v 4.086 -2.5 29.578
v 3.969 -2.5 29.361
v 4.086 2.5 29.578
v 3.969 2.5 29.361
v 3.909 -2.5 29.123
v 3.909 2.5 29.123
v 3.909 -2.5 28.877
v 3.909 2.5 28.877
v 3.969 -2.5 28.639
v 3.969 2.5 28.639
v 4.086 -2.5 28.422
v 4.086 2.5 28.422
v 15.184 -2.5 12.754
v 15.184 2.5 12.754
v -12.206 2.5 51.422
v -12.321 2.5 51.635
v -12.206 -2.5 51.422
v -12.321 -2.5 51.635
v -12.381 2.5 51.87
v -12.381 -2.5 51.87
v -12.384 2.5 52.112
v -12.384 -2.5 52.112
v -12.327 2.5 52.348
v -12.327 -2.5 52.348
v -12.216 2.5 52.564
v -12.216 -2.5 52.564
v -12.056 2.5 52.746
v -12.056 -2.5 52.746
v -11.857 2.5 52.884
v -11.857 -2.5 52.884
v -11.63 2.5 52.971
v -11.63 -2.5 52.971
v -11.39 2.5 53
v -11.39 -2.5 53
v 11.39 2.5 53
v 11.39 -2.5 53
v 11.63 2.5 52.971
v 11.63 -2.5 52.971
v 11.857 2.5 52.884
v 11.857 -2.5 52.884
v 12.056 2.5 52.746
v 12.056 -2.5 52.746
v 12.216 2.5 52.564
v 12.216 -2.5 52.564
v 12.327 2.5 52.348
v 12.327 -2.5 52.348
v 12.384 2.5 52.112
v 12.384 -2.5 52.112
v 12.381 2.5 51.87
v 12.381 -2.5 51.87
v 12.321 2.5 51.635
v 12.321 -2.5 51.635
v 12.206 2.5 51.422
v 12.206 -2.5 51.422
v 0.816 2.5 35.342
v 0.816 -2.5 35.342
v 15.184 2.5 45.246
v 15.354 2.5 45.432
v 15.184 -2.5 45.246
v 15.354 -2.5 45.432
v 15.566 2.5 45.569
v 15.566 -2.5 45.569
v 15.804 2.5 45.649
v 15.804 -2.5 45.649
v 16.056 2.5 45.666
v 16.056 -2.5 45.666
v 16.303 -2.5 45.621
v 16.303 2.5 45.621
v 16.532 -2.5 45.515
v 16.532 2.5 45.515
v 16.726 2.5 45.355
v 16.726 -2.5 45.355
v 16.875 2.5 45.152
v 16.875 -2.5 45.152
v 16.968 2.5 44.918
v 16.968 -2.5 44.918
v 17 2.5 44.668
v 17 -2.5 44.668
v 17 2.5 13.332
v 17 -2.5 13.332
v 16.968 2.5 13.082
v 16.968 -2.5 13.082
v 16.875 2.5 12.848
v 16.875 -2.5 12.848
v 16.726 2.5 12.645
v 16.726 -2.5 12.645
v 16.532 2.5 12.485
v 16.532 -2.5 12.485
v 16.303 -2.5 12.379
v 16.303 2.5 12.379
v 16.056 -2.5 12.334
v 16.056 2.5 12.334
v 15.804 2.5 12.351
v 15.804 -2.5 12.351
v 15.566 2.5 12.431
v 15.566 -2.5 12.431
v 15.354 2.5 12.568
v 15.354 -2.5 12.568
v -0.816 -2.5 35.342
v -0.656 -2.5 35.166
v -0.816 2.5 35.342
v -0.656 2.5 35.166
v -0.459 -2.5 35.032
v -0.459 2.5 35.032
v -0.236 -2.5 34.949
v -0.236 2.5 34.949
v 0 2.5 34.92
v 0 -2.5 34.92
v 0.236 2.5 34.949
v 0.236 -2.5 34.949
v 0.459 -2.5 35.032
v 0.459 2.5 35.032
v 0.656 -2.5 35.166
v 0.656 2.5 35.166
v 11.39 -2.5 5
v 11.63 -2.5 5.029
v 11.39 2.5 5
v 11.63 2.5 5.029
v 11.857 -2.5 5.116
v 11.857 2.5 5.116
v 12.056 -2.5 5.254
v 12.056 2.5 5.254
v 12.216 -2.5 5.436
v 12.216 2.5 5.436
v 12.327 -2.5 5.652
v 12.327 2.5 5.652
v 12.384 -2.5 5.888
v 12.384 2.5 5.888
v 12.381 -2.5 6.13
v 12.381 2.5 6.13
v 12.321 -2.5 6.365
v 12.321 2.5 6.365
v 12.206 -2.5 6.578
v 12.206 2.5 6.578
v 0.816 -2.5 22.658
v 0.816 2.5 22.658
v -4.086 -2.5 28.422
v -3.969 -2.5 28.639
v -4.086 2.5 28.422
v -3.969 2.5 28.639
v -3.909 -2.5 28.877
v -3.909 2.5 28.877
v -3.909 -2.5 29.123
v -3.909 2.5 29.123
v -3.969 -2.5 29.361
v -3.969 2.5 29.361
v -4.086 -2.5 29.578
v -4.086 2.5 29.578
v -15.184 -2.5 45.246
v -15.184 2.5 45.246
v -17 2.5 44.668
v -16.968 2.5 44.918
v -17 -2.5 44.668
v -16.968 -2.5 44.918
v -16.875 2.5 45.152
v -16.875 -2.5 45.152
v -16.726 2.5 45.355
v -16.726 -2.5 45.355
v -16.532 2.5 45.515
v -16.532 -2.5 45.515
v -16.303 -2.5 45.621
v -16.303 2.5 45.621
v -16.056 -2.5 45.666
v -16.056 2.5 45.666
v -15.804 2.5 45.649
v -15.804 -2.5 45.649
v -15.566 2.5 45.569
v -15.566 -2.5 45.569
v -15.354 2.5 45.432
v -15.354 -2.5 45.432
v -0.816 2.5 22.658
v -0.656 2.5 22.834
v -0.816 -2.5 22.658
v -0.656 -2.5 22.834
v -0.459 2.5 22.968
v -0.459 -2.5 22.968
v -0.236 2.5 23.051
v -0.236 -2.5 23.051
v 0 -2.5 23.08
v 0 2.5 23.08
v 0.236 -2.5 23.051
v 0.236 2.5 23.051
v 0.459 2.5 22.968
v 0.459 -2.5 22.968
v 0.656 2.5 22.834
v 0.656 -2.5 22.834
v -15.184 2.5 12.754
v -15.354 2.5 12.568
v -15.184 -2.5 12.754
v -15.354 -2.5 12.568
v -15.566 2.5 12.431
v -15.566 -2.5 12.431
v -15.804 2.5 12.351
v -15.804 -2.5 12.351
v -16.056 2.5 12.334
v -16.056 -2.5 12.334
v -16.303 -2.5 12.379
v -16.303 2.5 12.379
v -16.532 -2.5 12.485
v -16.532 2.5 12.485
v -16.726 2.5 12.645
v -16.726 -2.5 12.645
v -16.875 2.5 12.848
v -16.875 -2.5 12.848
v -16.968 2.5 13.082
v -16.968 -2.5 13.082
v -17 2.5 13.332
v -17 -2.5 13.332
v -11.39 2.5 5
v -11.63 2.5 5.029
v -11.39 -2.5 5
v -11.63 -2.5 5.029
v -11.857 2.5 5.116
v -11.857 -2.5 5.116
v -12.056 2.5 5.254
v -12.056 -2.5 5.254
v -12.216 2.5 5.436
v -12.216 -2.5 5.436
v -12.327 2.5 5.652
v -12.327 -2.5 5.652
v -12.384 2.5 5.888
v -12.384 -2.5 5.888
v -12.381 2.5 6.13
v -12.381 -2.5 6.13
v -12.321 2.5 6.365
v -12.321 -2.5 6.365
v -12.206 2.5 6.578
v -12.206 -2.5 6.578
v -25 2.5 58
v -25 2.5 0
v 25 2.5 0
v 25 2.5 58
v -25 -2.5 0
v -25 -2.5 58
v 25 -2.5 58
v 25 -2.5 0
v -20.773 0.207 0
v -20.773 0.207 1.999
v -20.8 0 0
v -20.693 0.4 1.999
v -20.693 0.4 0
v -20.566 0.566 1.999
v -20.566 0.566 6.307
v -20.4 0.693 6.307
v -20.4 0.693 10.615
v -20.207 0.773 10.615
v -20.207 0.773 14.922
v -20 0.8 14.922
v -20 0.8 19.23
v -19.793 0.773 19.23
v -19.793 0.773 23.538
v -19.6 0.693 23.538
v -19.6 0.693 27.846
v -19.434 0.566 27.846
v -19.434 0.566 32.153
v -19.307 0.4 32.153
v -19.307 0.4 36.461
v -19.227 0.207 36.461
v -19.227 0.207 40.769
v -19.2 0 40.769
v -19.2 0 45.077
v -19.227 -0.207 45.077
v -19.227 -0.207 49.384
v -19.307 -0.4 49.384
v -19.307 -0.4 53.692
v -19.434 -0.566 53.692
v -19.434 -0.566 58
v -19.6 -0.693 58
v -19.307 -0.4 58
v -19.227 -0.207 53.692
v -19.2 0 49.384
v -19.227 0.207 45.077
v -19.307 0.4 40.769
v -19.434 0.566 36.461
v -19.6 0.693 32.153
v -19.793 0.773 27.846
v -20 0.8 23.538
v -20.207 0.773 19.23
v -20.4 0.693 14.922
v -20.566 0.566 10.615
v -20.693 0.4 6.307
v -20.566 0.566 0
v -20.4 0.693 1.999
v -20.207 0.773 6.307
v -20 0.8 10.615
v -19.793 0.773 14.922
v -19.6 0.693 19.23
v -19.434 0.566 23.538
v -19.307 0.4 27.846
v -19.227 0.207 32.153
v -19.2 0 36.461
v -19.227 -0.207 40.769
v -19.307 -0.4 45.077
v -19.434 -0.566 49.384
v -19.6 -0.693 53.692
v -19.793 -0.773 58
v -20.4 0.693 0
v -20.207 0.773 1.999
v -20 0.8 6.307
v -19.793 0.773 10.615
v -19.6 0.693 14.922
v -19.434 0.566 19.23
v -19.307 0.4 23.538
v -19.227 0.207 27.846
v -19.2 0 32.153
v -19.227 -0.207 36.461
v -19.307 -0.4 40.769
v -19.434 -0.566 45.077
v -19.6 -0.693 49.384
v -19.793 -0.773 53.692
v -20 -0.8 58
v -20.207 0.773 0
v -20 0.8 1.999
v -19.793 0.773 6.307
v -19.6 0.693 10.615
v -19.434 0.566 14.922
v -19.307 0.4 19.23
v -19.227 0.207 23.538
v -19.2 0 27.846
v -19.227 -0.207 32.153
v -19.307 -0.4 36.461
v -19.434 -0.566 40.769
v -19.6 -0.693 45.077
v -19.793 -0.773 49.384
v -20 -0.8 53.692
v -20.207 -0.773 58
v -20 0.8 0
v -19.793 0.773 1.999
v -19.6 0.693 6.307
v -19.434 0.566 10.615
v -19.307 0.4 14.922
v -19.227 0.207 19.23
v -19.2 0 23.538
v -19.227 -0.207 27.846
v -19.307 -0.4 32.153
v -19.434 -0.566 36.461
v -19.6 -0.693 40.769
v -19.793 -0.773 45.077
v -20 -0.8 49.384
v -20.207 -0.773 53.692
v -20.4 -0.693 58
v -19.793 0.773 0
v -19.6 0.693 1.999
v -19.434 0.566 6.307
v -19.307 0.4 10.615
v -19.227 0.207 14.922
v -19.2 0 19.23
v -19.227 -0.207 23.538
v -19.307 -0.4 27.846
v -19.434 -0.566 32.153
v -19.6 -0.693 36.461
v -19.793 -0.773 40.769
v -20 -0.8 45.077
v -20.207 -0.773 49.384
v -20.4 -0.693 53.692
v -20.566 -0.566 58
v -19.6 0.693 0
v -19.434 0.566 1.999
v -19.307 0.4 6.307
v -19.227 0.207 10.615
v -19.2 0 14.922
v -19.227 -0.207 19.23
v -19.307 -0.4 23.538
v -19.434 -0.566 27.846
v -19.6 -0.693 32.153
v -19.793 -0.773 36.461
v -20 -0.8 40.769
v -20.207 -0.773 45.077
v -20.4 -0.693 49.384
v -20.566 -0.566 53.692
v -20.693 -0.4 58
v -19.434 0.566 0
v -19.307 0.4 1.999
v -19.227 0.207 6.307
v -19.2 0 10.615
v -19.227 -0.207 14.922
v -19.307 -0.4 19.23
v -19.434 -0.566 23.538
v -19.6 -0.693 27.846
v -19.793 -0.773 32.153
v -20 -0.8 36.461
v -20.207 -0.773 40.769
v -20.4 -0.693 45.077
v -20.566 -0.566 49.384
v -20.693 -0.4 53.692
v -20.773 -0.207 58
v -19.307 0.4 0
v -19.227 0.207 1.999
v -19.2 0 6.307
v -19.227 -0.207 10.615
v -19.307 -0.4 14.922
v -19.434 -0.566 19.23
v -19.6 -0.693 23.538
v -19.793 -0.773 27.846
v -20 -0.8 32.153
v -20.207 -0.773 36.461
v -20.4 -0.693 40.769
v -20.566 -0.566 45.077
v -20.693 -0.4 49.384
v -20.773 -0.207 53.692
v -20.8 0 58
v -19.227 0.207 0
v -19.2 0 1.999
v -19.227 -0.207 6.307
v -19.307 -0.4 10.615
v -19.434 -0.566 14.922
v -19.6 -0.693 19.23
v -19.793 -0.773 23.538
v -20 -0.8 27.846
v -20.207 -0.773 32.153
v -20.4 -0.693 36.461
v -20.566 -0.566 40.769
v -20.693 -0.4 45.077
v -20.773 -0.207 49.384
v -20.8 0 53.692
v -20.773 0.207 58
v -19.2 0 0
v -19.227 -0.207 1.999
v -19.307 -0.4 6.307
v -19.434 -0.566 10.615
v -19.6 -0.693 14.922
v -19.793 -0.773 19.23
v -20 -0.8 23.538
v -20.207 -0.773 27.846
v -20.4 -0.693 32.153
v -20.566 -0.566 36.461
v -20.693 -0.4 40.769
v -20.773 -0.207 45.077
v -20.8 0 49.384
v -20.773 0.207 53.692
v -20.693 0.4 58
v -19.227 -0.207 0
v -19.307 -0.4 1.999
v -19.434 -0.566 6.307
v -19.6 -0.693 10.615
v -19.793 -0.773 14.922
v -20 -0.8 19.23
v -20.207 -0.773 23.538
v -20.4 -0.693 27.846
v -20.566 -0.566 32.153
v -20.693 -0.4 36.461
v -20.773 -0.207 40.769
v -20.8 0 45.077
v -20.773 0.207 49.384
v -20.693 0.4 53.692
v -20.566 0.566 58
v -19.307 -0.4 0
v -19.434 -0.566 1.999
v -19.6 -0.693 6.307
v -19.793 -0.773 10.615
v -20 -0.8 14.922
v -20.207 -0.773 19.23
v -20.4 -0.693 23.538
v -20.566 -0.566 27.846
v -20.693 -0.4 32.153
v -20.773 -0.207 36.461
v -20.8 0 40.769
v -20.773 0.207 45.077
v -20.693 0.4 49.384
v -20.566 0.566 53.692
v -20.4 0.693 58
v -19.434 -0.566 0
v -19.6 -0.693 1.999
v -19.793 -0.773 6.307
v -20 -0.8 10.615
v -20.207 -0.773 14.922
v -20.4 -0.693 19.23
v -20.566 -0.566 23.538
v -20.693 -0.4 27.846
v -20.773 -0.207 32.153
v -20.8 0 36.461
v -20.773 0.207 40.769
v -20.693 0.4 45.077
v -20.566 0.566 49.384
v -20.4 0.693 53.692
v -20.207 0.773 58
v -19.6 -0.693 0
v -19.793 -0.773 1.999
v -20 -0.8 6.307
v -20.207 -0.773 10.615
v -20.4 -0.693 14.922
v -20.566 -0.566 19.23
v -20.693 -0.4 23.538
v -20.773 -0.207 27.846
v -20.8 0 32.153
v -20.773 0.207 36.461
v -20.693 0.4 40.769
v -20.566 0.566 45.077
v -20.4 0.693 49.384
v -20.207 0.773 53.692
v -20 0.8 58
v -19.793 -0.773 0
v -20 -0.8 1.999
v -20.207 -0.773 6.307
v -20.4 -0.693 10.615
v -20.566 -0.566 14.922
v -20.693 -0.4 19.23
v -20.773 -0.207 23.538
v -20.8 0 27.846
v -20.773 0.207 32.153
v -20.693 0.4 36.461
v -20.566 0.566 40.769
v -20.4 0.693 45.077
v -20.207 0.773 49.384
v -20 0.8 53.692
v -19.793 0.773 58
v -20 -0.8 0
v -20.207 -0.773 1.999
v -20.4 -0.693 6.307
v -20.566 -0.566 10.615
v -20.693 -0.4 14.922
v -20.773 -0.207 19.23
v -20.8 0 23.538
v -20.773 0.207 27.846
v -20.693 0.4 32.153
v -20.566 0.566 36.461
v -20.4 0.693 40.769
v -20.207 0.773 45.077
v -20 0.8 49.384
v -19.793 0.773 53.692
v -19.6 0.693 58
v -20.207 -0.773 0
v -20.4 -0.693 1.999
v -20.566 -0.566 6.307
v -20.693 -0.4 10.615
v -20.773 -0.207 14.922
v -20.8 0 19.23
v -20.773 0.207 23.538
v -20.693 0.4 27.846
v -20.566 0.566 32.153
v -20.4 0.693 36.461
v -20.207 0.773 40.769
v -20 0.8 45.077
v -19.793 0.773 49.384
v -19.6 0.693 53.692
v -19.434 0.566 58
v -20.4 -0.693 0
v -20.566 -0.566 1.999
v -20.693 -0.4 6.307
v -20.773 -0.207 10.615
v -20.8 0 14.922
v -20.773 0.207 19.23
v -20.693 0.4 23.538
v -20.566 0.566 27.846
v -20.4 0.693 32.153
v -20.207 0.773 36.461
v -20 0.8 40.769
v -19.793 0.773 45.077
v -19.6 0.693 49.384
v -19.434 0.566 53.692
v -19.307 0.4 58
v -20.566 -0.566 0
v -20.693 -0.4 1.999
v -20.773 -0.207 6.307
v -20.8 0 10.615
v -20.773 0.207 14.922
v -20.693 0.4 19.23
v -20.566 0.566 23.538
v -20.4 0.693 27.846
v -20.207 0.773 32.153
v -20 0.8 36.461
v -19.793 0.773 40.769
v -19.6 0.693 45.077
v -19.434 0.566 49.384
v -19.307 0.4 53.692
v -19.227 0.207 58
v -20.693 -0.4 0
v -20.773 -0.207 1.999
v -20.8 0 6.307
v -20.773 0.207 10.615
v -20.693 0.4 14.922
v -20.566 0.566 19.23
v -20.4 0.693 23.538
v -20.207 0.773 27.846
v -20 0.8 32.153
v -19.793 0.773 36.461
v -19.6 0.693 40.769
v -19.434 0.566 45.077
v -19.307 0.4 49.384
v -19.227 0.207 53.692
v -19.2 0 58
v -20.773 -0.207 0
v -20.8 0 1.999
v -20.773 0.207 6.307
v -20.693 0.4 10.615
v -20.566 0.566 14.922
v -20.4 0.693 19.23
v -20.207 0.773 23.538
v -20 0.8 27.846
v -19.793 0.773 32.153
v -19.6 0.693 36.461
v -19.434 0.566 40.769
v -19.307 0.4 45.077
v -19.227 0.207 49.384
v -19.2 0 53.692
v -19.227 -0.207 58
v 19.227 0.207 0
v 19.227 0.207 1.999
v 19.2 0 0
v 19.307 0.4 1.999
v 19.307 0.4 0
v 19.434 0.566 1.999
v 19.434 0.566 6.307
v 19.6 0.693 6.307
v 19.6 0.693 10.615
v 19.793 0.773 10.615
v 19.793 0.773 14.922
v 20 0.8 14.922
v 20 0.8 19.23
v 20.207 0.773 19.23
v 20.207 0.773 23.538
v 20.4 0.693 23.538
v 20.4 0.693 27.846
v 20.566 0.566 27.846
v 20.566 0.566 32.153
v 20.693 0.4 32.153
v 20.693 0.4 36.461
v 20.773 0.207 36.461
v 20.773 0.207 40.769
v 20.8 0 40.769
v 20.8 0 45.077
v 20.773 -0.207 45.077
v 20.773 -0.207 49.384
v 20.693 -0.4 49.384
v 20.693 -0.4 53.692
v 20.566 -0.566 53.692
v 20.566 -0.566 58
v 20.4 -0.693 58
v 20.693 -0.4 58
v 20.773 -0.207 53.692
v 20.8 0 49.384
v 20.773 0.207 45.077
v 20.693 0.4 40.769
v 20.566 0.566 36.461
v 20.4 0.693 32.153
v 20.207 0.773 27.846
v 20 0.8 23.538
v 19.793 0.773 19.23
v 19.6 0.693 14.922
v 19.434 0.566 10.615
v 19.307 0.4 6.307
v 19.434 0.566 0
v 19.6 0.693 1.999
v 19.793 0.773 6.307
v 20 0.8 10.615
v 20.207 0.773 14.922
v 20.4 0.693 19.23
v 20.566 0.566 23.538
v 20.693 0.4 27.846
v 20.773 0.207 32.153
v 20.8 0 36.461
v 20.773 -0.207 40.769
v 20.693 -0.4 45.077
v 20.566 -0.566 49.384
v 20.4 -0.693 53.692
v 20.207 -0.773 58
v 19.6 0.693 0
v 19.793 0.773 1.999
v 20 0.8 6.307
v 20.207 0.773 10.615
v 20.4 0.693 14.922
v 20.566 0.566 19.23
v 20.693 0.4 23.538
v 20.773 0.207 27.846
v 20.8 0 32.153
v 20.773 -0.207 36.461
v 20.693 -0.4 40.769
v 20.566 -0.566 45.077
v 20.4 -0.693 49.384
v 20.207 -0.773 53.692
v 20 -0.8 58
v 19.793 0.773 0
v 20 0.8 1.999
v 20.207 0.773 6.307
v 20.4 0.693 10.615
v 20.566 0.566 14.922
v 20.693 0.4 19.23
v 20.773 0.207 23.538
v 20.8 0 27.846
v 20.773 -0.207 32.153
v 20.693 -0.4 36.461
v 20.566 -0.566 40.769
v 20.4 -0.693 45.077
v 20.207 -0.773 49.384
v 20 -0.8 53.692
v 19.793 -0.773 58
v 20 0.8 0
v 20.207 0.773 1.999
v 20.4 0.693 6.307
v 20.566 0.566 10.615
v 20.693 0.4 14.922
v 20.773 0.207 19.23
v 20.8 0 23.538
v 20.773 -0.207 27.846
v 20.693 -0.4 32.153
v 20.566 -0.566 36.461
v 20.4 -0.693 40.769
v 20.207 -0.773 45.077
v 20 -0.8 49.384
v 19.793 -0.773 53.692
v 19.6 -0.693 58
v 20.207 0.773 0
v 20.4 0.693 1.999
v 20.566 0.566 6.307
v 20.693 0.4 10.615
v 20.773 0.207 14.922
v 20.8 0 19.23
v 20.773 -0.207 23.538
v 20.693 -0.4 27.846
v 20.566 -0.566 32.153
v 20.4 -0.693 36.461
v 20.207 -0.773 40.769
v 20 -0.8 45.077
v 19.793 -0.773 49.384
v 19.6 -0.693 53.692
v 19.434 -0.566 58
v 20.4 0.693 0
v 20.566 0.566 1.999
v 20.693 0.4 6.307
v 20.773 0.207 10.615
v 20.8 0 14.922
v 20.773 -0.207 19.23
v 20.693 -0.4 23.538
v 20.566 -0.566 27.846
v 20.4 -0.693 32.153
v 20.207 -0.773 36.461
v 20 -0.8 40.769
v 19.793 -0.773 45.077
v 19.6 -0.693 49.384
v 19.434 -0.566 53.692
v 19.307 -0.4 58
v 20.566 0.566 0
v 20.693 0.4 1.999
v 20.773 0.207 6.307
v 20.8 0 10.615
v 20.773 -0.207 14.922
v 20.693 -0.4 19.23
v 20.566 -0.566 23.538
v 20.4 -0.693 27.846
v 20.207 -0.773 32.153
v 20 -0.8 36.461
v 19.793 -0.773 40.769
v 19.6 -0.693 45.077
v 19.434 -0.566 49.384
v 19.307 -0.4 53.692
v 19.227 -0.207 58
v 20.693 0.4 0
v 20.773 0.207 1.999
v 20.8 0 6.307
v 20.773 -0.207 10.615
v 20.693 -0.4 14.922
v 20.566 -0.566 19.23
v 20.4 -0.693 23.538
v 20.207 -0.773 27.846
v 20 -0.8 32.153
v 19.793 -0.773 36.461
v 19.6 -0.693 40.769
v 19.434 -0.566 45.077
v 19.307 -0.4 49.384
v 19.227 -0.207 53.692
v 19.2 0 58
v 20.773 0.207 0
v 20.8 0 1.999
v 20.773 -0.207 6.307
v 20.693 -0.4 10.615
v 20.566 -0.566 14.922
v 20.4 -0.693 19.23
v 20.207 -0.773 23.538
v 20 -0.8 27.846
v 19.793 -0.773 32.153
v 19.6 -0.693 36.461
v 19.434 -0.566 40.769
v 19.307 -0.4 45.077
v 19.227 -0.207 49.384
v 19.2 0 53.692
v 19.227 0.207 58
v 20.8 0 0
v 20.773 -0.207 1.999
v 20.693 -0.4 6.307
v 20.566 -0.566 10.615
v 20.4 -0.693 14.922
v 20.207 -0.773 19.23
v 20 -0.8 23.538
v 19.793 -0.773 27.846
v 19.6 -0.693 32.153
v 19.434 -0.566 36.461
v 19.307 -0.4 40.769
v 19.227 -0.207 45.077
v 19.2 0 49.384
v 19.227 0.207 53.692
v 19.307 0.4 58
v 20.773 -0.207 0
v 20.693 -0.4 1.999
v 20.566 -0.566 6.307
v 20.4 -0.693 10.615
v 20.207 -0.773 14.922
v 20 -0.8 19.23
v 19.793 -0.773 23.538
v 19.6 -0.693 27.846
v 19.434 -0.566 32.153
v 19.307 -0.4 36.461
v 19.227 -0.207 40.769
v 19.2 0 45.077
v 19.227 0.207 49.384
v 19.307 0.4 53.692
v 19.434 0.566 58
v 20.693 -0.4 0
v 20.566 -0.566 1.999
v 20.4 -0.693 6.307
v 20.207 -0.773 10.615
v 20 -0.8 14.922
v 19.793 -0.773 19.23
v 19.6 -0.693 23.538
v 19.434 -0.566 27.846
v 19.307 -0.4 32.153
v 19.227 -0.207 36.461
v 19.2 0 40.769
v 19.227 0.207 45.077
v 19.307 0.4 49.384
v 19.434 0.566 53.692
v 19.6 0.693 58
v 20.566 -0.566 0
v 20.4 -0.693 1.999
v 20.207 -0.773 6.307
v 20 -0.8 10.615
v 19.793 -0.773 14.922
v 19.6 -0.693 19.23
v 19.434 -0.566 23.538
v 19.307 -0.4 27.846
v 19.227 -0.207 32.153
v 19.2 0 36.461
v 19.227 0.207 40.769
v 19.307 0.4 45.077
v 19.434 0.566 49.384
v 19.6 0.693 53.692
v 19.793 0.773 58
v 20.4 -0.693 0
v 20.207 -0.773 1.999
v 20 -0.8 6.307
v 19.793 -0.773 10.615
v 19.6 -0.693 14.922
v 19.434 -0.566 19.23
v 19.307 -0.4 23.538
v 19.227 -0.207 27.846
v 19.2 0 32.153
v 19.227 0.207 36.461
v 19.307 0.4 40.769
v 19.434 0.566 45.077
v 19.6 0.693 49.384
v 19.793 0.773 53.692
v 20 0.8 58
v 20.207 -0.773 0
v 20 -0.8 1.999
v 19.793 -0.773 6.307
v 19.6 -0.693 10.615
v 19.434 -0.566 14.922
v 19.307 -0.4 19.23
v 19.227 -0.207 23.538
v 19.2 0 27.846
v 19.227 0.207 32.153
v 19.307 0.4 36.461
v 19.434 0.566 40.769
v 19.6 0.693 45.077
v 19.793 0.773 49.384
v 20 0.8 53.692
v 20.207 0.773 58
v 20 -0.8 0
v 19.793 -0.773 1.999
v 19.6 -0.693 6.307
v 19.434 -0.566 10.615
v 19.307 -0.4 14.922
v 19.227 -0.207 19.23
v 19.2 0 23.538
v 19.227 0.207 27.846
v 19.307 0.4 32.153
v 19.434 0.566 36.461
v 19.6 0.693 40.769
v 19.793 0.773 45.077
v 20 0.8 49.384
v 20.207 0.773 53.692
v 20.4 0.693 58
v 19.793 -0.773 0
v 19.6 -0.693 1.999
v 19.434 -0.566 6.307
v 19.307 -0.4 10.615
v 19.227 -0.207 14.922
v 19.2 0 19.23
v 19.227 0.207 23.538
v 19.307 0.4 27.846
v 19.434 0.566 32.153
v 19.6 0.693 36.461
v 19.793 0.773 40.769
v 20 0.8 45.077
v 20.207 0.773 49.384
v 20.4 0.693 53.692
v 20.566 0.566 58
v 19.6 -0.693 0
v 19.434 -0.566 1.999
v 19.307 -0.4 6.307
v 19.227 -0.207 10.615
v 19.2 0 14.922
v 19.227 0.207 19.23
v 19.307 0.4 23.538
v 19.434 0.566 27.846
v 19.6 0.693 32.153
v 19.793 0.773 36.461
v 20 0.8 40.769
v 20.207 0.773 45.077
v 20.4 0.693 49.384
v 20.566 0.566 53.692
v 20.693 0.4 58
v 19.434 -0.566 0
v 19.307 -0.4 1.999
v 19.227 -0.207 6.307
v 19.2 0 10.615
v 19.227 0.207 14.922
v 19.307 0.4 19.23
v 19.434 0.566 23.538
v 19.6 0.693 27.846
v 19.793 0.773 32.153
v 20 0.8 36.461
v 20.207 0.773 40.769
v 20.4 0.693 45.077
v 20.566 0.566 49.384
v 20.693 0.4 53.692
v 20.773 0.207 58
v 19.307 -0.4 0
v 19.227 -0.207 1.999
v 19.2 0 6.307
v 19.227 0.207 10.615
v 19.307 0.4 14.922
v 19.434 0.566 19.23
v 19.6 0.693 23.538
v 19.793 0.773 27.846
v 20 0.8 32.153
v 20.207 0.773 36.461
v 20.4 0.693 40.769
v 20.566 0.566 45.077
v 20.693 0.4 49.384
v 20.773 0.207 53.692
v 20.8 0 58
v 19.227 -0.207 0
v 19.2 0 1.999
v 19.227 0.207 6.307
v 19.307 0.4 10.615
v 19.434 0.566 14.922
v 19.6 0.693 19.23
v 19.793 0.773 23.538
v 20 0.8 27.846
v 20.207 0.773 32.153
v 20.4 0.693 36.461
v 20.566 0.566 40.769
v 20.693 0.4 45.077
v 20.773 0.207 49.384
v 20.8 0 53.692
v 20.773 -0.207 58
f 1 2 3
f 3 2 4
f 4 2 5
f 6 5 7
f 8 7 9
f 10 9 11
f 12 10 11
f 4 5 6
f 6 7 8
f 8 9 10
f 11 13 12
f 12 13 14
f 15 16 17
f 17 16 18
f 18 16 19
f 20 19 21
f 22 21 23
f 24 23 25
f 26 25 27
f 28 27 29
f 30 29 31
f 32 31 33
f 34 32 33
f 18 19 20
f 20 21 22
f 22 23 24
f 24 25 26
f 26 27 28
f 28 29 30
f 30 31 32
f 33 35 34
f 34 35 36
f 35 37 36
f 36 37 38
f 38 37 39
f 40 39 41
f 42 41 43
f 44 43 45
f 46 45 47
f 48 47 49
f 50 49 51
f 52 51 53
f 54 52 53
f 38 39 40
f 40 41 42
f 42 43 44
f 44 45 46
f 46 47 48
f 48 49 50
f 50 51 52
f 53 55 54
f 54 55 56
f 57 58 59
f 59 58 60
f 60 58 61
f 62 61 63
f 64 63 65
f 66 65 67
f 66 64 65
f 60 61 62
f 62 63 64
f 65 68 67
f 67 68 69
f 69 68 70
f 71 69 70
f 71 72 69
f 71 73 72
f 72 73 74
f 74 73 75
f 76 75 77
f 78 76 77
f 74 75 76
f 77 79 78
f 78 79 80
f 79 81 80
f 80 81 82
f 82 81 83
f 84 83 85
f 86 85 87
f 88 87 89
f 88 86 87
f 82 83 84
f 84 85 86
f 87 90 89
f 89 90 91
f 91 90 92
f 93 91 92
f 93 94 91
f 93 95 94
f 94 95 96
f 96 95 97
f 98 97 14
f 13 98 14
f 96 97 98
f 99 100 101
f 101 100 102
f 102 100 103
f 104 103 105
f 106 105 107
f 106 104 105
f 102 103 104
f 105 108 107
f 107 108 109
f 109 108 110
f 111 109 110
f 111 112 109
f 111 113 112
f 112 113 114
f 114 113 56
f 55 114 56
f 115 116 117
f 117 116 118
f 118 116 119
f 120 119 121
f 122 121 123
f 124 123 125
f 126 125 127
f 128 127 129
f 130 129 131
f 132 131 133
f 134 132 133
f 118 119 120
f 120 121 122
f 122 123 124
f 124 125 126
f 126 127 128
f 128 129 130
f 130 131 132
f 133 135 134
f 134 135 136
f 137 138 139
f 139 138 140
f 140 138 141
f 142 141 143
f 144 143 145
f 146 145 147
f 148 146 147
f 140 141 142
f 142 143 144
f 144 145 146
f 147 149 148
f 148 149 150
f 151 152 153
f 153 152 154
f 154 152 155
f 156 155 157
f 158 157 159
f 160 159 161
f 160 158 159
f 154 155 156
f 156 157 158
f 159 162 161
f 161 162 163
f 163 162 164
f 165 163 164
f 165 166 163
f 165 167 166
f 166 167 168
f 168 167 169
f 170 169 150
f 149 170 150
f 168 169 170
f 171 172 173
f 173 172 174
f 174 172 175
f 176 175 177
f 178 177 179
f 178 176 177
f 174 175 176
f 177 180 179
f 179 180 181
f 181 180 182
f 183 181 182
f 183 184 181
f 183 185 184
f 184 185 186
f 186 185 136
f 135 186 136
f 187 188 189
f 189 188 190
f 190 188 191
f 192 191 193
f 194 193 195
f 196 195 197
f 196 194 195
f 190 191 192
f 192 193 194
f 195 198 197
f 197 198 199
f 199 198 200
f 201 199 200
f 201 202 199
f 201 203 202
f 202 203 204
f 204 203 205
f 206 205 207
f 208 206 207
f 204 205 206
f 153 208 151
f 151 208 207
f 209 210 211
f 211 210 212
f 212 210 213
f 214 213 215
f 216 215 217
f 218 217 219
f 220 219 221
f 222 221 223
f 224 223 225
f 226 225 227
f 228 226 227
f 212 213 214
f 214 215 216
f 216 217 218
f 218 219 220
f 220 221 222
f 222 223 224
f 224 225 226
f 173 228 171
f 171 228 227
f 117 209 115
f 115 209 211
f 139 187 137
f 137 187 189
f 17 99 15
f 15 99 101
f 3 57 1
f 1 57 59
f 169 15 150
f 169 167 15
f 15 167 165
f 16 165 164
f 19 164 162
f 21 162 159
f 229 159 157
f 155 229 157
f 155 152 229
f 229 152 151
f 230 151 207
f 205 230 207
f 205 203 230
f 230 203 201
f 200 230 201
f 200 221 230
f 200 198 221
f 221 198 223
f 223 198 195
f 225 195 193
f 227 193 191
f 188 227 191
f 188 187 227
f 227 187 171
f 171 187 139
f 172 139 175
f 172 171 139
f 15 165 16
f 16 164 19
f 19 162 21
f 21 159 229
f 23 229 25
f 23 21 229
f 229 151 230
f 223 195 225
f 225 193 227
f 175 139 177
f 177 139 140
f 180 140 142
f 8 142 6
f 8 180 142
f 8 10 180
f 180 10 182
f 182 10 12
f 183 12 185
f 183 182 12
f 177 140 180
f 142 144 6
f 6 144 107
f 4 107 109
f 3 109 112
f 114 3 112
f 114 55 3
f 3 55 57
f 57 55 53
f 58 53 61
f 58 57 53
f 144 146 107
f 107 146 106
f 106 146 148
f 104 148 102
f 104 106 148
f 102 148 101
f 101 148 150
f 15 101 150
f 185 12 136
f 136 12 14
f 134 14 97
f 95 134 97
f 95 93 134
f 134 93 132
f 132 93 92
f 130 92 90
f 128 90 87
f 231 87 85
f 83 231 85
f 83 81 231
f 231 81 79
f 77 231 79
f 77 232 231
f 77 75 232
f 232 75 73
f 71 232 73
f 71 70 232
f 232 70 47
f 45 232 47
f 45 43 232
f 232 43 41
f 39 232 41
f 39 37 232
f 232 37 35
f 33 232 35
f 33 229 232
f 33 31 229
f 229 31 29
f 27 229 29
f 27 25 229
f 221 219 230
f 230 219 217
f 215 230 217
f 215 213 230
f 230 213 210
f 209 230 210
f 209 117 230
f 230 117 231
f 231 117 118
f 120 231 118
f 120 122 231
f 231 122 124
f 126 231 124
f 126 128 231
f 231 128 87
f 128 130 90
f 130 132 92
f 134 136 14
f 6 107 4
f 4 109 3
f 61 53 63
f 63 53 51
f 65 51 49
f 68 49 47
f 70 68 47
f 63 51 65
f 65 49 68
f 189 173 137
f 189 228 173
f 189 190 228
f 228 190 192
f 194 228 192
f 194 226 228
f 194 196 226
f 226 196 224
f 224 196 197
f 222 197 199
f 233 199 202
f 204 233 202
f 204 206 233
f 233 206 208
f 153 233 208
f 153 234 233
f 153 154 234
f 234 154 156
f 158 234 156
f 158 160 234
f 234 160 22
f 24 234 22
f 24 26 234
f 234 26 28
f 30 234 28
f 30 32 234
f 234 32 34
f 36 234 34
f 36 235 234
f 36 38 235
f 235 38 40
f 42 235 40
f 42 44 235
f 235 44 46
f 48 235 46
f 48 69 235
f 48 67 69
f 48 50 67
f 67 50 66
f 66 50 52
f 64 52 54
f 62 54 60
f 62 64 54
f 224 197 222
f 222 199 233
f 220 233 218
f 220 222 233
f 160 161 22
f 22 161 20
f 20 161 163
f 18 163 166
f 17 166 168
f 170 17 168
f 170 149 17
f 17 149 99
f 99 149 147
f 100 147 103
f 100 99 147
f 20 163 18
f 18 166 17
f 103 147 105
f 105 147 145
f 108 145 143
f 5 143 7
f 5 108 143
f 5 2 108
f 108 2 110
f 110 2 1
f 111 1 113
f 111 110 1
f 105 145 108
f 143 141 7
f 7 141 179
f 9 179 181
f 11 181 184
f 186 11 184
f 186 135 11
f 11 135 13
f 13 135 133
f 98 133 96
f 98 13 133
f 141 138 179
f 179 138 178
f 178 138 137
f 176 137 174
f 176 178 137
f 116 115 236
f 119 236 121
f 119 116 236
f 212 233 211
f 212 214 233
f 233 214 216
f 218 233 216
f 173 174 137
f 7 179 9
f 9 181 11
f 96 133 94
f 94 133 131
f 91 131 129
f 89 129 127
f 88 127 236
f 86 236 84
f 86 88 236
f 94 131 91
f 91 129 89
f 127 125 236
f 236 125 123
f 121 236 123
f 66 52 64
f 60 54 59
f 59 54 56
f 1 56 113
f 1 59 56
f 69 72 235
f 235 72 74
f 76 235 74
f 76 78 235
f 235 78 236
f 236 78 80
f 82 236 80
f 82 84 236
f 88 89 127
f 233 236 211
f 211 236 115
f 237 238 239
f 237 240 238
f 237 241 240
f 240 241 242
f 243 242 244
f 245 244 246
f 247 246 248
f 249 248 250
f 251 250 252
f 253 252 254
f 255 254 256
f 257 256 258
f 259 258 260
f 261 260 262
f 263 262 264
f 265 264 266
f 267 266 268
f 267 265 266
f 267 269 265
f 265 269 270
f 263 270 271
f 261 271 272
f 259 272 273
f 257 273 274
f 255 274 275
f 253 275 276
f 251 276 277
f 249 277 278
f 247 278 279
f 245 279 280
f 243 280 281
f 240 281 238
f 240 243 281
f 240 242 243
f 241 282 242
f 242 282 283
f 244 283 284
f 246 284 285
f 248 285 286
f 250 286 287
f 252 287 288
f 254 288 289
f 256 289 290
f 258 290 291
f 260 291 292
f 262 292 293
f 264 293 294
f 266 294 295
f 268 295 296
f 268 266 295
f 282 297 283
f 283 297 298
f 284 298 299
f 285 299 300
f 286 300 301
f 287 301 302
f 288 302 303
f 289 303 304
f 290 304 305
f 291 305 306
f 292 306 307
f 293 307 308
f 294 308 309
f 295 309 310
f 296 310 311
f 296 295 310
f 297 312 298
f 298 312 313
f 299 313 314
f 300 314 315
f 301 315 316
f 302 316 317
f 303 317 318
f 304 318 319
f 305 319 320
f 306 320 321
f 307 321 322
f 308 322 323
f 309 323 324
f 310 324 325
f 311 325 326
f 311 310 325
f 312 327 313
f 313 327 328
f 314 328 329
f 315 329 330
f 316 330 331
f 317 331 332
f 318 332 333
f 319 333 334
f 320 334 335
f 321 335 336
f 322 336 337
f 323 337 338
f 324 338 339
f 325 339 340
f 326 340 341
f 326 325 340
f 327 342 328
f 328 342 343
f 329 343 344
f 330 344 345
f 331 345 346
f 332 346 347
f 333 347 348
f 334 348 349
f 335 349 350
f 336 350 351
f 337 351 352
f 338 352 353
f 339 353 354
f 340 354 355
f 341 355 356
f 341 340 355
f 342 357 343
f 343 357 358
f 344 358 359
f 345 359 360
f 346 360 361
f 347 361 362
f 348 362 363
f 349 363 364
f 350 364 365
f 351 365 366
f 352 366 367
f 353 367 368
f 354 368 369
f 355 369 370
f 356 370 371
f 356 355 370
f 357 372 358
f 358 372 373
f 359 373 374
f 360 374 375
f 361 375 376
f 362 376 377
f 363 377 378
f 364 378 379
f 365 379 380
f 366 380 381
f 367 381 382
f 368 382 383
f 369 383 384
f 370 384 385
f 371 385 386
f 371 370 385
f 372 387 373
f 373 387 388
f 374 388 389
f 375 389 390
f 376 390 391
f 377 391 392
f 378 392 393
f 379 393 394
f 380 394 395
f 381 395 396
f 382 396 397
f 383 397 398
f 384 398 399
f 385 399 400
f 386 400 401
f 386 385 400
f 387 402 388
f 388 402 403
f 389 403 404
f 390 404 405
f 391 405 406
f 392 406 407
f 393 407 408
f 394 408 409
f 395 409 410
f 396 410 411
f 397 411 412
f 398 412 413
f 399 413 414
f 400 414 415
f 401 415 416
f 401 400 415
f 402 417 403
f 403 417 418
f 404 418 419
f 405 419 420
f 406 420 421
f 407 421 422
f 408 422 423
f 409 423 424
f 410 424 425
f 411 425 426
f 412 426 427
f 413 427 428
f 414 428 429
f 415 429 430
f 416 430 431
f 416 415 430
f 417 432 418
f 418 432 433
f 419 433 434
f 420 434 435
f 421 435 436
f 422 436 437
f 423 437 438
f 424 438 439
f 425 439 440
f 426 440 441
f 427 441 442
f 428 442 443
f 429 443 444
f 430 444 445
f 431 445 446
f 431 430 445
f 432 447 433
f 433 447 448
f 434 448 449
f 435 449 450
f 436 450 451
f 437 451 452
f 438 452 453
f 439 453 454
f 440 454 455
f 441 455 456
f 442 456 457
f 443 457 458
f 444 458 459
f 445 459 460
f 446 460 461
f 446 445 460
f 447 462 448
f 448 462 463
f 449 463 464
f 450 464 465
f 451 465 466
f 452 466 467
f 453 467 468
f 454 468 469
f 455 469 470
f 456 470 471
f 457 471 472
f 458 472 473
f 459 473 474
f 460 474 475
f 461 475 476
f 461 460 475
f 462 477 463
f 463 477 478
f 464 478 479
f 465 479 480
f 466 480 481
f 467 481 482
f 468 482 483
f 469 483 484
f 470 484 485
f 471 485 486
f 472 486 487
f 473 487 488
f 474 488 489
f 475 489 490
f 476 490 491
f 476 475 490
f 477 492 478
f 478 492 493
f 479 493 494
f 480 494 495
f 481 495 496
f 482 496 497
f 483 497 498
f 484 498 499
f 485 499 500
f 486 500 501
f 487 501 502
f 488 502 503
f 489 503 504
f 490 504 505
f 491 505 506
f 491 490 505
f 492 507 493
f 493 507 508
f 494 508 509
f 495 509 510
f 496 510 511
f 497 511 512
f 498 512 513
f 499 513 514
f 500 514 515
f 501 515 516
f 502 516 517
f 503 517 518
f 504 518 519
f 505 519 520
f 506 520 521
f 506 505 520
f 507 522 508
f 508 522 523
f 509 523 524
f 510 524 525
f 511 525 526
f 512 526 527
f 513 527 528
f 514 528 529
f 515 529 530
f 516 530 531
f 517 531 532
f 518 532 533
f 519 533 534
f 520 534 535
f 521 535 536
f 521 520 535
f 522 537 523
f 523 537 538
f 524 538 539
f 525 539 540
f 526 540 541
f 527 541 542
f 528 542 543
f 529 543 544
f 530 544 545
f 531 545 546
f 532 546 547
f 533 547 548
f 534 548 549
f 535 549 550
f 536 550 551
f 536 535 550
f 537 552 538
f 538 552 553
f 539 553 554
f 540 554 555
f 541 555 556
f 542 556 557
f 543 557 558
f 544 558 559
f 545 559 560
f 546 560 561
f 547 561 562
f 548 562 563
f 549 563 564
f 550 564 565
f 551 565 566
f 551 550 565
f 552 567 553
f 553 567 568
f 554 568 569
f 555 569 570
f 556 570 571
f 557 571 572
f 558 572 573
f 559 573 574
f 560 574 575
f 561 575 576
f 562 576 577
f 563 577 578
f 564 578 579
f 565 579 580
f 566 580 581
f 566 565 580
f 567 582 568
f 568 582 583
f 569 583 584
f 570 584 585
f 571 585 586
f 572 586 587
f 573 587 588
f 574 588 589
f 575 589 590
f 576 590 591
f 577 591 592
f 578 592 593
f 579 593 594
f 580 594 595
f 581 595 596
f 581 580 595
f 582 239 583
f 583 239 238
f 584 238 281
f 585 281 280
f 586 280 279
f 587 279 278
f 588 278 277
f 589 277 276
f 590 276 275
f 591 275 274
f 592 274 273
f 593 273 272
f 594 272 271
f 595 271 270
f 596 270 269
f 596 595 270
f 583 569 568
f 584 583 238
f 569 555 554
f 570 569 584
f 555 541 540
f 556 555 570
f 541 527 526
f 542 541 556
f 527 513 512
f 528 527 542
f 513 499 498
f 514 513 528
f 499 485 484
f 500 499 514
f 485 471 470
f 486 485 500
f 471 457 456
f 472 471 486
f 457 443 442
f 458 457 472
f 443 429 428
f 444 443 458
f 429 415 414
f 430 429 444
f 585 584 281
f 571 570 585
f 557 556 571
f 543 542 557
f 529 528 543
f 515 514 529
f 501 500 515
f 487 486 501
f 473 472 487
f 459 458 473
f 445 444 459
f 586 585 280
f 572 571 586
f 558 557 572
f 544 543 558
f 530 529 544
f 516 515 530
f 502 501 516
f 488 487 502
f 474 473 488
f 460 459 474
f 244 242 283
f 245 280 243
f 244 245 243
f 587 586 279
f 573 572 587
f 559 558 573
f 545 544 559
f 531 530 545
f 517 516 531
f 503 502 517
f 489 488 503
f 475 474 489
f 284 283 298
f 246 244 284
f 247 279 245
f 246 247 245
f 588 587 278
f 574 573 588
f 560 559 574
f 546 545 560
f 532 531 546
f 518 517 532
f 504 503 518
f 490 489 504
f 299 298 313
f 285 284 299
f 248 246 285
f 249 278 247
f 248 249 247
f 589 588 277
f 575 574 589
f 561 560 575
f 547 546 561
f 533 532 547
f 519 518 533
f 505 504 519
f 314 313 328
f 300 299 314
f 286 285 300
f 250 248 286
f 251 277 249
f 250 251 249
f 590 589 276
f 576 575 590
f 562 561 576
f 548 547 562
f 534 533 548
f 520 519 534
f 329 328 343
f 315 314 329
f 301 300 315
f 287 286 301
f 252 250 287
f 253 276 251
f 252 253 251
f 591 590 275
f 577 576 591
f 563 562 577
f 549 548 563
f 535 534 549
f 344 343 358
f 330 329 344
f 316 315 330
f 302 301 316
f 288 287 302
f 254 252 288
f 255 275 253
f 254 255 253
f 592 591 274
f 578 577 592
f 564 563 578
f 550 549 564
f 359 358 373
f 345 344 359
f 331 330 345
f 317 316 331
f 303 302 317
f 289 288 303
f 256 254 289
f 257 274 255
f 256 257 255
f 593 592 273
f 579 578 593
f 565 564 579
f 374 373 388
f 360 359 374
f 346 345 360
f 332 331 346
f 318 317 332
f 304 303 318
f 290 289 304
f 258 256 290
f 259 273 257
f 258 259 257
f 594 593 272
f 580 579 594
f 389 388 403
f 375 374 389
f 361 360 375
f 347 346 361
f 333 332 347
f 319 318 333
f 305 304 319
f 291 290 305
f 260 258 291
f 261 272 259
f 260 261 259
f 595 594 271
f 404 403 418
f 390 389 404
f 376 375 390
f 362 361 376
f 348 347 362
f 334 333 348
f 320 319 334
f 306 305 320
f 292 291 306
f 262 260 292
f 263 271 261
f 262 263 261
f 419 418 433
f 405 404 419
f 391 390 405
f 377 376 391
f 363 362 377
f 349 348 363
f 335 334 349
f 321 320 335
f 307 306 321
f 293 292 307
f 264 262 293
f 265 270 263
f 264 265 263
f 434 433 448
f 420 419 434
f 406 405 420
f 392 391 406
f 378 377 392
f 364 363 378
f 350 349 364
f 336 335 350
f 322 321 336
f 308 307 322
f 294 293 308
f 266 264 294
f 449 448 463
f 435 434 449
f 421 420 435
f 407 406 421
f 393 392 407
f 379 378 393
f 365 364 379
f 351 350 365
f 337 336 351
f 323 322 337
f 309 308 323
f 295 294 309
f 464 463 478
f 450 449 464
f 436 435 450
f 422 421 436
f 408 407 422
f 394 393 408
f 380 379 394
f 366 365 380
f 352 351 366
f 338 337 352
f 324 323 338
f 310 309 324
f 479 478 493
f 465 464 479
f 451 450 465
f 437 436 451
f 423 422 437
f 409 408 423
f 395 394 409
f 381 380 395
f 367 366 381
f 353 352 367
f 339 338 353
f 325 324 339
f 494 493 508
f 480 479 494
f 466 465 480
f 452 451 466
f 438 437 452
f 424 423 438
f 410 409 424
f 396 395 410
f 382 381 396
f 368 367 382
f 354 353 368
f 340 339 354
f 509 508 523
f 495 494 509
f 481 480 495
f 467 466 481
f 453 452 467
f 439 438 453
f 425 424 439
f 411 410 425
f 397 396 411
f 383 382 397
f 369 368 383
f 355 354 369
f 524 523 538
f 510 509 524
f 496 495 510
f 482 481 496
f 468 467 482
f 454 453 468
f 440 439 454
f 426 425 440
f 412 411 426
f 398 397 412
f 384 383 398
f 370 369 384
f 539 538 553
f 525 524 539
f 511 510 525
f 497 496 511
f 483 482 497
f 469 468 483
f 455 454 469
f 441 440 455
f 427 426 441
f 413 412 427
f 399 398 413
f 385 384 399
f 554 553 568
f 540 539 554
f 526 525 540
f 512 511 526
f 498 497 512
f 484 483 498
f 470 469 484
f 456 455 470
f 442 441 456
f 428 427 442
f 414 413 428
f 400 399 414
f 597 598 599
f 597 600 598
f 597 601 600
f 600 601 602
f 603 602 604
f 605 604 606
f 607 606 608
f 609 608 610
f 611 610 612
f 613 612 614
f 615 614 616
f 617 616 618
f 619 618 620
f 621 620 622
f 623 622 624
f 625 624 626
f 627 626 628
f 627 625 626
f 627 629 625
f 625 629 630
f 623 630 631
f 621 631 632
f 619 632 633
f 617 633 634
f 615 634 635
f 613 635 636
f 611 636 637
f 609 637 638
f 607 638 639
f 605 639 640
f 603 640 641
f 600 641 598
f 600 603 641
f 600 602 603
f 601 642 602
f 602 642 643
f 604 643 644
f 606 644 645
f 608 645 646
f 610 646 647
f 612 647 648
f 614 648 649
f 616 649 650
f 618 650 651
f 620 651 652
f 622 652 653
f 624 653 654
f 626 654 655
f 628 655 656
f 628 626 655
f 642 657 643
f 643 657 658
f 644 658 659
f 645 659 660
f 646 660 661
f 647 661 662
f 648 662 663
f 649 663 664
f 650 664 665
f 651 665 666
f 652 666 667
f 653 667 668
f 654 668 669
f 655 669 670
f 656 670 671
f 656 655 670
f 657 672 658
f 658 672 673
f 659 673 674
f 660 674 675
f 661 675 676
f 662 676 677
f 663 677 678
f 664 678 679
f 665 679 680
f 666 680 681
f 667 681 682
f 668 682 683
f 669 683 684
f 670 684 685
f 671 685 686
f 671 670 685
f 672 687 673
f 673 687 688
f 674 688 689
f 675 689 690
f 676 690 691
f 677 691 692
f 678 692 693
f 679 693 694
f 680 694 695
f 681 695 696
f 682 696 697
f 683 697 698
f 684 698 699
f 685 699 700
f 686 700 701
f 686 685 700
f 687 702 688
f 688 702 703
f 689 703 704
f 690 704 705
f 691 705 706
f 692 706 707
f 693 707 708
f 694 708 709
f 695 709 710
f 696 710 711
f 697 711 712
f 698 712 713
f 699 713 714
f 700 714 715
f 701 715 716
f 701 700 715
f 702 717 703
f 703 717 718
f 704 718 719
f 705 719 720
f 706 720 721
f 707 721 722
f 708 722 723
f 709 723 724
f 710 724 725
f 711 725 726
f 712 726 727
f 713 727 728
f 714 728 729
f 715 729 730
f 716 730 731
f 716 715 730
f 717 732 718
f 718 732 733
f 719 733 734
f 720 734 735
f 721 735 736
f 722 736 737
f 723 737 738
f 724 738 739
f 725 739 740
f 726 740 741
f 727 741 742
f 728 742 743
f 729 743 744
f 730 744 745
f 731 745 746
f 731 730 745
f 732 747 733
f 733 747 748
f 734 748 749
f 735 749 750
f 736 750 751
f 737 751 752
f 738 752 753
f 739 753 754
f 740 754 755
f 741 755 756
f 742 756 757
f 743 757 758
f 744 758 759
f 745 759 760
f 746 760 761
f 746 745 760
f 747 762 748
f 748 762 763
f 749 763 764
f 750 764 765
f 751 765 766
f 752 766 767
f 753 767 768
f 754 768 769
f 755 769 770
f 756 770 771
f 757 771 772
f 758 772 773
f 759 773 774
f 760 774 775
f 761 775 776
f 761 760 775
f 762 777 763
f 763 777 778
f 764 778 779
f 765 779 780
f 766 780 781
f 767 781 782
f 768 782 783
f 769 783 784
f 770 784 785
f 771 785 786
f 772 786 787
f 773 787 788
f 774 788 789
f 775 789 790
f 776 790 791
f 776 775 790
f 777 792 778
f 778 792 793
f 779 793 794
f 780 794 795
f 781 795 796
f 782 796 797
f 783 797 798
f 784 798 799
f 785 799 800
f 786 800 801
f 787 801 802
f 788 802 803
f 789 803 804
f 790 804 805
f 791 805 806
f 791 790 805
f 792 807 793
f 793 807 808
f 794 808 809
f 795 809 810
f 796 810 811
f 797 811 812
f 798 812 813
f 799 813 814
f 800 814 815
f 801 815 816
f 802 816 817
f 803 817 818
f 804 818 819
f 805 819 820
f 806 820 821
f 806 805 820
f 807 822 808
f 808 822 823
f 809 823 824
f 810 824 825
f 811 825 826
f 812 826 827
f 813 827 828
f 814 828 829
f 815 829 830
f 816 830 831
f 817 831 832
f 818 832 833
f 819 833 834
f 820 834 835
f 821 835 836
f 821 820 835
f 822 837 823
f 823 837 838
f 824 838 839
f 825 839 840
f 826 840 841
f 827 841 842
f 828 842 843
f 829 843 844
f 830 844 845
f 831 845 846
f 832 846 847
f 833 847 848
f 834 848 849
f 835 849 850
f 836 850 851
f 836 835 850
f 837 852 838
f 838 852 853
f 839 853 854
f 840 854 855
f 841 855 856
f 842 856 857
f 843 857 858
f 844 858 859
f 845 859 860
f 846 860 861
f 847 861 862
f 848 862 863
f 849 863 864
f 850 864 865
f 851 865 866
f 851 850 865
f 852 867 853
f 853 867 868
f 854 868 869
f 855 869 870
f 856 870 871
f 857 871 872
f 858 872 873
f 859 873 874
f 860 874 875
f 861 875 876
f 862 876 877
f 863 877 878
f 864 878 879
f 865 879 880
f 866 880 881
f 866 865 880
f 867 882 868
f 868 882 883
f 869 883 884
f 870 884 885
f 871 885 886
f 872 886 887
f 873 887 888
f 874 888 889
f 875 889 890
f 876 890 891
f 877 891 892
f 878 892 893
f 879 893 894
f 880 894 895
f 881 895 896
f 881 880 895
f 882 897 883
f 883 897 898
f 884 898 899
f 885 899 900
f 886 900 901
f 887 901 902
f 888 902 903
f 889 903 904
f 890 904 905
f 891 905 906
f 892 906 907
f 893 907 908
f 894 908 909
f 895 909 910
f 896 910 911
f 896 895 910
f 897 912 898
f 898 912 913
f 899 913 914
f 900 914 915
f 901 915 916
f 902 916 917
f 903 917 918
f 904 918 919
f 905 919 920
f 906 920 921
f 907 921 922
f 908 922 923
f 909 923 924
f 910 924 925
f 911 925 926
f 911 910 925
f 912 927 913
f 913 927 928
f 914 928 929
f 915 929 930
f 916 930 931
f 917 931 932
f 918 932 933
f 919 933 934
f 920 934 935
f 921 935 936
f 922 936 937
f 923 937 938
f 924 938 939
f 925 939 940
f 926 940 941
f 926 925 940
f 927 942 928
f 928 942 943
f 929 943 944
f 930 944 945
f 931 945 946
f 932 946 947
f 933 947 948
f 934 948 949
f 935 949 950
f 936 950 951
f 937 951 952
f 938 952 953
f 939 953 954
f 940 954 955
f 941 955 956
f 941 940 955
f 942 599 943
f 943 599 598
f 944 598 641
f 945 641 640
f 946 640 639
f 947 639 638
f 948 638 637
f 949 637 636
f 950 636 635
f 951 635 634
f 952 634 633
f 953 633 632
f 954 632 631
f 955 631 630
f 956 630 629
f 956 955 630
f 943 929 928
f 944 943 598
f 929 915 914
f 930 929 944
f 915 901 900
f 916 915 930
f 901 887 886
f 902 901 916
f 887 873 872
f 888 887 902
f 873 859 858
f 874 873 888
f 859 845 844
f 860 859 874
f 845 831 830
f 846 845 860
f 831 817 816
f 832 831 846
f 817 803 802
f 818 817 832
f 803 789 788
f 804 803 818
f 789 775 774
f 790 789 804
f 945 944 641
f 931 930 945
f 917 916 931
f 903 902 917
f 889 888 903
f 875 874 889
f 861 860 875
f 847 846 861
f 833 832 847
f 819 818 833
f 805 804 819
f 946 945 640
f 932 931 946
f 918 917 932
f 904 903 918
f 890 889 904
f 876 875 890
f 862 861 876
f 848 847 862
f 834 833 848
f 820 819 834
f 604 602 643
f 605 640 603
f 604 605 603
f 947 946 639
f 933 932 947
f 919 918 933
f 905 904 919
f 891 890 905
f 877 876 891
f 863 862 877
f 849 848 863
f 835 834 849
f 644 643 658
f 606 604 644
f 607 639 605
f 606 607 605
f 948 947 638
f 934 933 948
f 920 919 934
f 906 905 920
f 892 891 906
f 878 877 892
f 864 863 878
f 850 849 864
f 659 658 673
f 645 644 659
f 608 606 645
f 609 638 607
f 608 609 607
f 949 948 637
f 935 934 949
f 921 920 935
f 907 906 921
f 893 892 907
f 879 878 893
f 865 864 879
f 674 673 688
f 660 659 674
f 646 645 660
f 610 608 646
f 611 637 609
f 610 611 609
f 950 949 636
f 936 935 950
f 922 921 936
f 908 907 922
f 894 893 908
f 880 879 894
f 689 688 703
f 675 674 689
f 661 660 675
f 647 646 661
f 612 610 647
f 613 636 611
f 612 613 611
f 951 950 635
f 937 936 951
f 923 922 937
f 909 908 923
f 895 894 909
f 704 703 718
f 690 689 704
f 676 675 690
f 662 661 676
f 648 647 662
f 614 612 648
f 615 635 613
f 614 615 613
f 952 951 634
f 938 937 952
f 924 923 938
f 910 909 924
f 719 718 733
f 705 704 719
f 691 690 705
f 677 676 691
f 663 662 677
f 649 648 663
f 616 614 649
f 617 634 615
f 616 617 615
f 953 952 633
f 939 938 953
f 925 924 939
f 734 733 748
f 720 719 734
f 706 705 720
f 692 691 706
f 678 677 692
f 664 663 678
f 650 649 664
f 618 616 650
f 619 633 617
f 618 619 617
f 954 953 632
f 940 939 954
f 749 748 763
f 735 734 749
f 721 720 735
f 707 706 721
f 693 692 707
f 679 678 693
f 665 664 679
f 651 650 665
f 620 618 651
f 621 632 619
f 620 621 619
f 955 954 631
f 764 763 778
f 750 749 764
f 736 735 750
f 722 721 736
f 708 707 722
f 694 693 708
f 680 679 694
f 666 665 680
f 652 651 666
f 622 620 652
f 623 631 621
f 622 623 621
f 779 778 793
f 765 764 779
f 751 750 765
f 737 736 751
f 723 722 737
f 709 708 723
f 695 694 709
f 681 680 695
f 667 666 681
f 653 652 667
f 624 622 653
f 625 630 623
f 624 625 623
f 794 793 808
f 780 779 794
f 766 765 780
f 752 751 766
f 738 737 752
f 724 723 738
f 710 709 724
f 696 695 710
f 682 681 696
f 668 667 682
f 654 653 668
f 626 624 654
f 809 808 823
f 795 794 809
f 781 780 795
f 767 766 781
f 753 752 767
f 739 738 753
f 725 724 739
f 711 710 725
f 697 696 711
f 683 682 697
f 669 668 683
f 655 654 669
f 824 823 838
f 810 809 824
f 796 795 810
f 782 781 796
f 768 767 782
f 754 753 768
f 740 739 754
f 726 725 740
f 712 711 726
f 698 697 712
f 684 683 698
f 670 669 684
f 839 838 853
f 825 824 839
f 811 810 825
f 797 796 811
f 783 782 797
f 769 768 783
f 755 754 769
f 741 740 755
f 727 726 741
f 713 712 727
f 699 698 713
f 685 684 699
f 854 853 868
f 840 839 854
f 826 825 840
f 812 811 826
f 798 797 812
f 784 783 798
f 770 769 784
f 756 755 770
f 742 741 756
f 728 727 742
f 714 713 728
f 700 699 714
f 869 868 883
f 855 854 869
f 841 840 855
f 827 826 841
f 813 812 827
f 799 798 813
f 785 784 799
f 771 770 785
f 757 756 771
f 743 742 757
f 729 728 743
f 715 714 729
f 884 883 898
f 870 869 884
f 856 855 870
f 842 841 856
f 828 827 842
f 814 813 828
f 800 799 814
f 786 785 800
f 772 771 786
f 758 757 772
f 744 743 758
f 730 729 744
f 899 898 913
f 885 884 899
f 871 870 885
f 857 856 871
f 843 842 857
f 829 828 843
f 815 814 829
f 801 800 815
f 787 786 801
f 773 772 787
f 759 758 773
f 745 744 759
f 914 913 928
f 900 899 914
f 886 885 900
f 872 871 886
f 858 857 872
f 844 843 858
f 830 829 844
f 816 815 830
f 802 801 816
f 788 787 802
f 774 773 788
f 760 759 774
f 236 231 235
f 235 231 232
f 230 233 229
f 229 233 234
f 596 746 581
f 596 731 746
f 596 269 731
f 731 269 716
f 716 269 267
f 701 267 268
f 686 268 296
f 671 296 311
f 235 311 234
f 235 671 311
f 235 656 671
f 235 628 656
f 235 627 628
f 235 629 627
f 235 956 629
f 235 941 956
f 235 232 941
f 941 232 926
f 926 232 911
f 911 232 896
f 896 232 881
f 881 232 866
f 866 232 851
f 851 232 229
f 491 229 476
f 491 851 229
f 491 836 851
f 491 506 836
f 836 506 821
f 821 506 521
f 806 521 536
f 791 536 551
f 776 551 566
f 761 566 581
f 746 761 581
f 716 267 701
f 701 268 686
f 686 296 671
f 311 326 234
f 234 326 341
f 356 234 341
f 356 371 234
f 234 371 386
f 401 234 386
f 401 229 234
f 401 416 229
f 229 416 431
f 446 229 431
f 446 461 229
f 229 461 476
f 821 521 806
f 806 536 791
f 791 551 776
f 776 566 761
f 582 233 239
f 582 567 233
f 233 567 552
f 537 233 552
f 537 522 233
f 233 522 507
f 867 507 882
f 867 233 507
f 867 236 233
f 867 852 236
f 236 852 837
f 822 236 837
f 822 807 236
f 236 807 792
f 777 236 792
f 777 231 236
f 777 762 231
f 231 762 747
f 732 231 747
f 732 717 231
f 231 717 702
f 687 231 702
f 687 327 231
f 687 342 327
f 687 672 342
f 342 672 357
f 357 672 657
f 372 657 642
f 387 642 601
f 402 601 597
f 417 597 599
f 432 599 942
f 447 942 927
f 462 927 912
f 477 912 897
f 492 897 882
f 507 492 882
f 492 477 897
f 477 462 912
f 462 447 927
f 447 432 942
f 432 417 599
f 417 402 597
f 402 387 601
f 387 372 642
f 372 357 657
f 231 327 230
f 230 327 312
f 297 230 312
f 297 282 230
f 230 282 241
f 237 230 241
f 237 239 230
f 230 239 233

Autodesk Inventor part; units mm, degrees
ref_plane "YZ Plane" through (0, 0, 0) normal (1, 0, 0) x (0, 1, 0)
ref_plane "XZ Plane" through (0, 0, 0) normal (0, 1, 0) x (-1, 0, 0)
ref_plane "XY Plane" through (0, 0, 0) normal (0, 0, 1) x (1, 0, 0)
sketch "スケッチ1" plane through (0, 0, 0) normal (0, 0, 1) x (1, 0, 0)
  line L0 (25, 2.5) -> (25, -2.5)
  line L1 (25, -2.5) -> (-25, -2.5)
  line L2 (-25, -2.5) -> (-25, 2.5)
  line L3 (-25, 2.5) -> (25, 2.5)
  point P0 (0, 0)
  dimension "d6" = 50
  dimension "d11" = 2.5
  dimension "d12" = 25
  dimension "d17" = 5
extrude "押し出し2" add sketch "スケッチ1" along normal blind 58
sketch "スケッチ2" plane through (0, 0, 58) normal (0, 0, 1) x (1, 0, 0)
  line L0 (25, 2.5) -> (-25, 2.5) projected
  circle A0 centre (-20, 0) radius 1
  circle A1 centre (20, 0) radius 1
  point P0 (0, 0)
  dimension "d20" = 2
  dimension "d22" = 40
  dimension "d23" = 20
  dimension "d24" = 2.5
  dimension "d25" = 2.5
hole "穴1" at (-20, 0, 58) at (20, 0, 58) direction (0, 0, -1) diameter 1.6 end through all
sketch "スケッチ3" plane through (-25, 2.5, 0) normal (0, 1, 0) x (1, 0, 0)
  line L0 (50, 0) -> (0, 0) projected
  line L1 (0, 0) -> (0, -58) projected
  line L2 (50, -58) -> (0, -58) projected
  line L3 (50, 0) -> (50, -58) projected
  line L4 (8, -5) -> (8, -53)
  line L5 (8, -53) -> (42, -5)
  line L6 (42, -5) -> (42, -53)
  line L7 (42, -53) -> (8, -5)
  line L8 (8, -5) -> (42, -5)
  line L9 (42, -53) -> (8, -53)
  line L10 (8, -10.1902) -> (38.3236, -53)
  line L11 (42, -47.8098) -> (11.6764, -5)
  line L12 (38.3236, -5) -> (8, -47.8098)
  line L13 (11.6764, -53) -> (42, -10.1902)
  point P0 (25, 0)
  dimension "d35" = 5
  dimension "d36" = 5
  dimension "d37" = 8
  dimension "d38" = 8
  dimension "d39" = 6
  dimension "d40" = 6
extrude "押し出し3" cut sketch "スケッチ3" against normal blind 5 contours L3 L2 L1 L0 | L7 L12 L10 L4 | L8 L11 L12 L7 | L12 L11 L5 L7 | L7 L5 L10 L12 | L12 L10 L5 L4 | L7 L13 L10 L5 | L5 L11 L13 L7 | L12 L8 L5 L11 | L5 L10 L13 L9 | L5 L6 L13 L11 | L13 L11 L6 L7 | L7 L9 L10 L13 keep common part
fillet "フィレット1" radius 1 12 edges at (-13.3236, 0, 5) (-17, 0, 10.1902) (0, 0, 23.8098) (-17, 0, 47.8098) (-3.6764, 0, 29) (13.3236, 0, 5) (0, 0, 34.1902) (17, 0, 10.1902) (17, 0, 47.8098) (13.3236, 0, 53) (-13.3236, 0, 53) (3.6764, 0, 29)
properties part number "Link_Supporter"
